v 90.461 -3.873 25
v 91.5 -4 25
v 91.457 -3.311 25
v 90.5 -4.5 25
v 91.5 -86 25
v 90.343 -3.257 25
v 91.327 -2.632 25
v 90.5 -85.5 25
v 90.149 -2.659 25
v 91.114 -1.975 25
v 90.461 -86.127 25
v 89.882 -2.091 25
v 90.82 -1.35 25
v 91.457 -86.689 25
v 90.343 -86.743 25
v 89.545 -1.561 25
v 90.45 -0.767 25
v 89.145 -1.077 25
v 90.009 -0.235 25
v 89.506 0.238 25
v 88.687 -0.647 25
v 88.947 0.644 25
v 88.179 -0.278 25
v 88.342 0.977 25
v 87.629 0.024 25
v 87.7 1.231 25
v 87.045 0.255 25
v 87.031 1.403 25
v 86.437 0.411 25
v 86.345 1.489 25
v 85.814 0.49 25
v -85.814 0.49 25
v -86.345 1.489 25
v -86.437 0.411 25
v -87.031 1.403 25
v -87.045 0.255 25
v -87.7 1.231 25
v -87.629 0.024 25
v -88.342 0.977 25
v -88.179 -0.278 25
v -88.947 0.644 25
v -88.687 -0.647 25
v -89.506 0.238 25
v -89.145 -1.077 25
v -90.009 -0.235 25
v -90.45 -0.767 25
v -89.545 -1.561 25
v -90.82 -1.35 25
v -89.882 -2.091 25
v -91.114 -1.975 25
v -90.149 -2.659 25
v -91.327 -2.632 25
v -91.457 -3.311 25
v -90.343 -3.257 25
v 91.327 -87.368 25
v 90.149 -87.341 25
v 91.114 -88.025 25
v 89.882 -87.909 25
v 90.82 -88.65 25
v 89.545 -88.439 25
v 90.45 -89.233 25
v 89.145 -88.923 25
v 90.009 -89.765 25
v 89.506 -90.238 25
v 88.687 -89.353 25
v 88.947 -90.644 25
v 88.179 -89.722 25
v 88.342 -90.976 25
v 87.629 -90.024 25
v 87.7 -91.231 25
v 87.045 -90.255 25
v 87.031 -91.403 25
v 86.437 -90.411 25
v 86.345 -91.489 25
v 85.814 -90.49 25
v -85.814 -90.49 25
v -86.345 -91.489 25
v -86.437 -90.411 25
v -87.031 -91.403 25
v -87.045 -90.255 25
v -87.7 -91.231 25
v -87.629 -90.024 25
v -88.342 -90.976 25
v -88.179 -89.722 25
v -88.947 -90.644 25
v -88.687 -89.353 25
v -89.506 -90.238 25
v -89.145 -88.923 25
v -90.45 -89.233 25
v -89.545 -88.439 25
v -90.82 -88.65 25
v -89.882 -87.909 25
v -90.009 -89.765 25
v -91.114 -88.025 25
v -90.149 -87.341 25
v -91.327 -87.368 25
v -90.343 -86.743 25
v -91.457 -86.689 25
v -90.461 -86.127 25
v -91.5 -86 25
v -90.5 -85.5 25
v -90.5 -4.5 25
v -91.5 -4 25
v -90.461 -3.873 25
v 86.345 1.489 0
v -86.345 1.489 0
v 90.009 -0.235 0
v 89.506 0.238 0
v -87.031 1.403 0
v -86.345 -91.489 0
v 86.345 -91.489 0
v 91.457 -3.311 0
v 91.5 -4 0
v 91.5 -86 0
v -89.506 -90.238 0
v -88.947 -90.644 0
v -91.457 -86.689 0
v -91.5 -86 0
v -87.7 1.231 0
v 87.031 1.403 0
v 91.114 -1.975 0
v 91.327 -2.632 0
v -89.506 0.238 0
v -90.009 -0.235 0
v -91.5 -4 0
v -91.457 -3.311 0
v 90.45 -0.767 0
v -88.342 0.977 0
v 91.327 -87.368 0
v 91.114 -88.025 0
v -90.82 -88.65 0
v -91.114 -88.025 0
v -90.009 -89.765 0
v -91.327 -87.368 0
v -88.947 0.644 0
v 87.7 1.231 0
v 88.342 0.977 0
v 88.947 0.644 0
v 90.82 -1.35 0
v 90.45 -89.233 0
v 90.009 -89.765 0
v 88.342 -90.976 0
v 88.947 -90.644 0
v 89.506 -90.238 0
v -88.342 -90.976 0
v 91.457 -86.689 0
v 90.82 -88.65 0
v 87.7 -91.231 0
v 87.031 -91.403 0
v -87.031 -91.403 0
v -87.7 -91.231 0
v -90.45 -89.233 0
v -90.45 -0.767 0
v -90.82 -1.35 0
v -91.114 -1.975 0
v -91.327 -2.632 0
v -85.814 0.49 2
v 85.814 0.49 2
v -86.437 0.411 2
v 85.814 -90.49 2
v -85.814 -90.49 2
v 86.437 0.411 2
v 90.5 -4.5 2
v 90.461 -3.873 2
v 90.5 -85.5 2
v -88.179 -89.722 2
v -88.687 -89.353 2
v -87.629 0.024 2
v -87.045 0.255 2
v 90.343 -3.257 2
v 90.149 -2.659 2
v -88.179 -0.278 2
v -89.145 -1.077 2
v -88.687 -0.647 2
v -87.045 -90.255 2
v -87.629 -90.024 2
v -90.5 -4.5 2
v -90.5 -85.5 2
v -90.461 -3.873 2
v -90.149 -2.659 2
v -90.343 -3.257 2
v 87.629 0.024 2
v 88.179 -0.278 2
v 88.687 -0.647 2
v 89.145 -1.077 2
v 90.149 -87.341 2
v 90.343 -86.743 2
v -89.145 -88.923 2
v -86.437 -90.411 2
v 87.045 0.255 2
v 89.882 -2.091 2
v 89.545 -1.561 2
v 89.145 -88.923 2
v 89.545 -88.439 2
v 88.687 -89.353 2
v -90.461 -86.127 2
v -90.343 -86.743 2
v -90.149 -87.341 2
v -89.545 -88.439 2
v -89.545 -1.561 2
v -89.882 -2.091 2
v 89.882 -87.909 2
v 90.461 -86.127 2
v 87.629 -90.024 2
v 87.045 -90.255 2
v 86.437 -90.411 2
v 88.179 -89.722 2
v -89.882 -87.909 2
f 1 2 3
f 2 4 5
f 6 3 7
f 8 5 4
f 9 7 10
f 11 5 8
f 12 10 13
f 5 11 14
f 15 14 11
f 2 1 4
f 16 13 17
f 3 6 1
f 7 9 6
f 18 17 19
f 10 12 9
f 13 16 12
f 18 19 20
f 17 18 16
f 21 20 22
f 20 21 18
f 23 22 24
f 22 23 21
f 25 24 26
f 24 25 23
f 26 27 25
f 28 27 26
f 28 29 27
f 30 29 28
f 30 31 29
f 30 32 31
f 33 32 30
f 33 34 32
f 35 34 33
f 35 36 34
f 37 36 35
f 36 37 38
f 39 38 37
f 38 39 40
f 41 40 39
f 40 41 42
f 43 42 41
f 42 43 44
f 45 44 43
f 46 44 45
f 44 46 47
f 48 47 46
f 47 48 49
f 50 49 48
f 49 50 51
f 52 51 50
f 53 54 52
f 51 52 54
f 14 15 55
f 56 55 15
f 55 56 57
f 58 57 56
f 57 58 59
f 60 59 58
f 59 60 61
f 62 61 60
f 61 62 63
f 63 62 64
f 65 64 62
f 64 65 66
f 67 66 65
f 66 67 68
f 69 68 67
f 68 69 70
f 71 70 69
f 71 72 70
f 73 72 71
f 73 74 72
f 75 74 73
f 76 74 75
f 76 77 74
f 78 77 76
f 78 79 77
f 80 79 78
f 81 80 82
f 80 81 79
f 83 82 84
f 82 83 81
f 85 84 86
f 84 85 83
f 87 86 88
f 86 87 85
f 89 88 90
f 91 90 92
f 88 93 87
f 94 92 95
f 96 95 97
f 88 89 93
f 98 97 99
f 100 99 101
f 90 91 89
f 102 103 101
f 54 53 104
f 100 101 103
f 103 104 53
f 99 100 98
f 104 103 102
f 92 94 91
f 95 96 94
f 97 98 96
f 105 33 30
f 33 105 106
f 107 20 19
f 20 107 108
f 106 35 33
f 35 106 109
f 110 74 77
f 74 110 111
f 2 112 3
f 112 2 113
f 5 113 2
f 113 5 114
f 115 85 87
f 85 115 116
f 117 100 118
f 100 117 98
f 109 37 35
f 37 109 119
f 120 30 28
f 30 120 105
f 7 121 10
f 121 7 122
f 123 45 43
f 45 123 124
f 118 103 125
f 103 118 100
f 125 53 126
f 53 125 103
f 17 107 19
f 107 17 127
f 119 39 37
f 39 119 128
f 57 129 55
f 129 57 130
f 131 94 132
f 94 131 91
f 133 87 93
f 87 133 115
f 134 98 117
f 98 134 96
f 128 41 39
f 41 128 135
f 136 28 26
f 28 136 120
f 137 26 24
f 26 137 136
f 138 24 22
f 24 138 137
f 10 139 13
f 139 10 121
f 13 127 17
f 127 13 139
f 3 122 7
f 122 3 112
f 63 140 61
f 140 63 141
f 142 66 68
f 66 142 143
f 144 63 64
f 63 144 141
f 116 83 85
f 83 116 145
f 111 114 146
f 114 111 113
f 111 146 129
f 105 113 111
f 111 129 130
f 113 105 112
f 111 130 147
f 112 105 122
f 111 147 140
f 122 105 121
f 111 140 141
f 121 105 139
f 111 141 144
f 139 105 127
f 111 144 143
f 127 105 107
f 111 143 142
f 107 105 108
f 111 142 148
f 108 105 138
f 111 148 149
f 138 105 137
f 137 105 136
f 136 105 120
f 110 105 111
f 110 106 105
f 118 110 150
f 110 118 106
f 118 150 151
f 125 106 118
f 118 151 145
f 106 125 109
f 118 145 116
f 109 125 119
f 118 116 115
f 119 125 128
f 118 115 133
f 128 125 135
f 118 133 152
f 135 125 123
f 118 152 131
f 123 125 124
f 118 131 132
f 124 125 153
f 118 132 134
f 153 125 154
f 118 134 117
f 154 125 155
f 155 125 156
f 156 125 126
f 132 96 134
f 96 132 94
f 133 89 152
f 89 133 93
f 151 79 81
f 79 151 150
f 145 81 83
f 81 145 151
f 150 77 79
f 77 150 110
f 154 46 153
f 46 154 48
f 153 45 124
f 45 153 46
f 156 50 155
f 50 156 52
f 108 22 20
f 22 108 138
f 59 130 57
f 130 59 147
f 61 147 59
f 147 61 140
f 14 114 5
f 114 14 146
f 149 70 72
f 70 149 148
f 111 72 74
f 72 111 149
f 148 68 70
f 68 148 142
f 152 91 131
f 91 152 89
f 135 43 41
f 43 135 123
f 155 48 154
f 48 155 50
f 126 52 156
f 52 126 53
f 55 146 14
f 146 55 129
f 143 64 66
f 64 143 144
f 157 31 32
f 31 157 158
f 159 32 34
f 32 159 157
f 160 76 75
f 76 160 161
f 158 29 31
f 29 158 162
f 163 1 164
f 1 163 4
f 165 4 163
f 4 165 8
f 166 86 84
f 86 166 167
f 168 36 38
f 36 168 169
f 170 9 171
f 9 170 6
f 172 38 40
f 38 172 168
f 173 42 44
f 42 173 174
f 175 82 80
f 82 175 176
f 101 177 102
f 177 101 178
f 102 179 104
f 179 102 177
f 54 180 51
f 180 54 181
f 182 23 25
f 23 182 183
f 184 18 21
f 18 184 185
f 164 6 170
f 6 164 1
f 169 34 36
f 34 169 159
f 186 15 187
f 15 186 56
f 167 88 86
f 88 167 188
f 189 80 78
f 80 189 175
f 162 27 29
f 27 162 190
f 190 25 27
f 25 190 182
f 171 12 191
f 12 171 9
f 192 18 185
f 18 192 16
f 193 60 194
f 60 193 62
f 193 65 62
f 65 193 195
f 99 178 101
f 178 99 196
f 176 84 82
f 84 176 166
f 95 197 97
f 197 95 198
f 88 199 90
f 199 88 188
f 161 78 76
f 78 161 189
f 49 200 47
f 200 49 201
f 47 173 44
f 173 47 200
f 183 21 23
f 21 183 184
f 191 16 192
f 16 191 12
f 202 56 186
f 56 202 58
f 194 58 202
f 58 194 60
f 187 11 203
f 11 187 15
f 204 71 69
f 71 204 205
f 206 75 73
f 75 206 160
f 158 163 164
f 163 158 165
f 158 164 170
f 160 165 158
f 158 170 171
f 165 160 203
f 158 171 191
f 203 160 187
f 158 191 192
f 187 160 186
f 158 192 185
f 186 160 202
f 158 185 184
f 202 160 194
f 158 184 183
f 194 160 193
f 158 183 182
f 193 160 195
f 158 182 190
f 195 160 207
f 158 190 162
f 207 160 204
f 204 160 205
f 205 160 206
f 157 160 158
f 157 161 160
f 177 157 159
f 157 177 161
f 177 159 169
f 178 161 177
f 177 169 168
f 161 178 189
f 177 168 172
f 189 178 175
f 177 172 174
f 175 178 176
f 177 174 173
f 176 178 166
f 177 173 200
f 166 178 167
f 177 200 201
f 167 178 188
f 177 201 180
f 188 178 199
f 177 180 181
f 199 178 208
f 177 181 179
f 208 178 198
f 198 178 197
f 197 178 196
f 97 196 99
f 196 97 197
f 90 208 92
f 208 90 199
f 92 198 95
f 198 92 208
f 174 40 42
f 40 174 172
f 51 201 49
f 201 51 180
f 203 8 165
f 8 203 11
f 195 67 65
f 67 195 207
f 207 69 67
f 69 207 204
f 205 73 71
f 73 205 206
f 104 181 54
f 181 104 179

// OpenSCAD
$fn = 50;


difference() {
	union() {
		translate(v = [0, -45.0000000000, 0]) {
			hull() {
				translate(v = [-86.0000000000, 41.0000000000, 0]) {
					cylinder(h = 25, r = 5.5000000000);
				}
				translate(v = [86.0000000000, 41.0000000000, 0]) {
					cylinder(h = 25, r = 5.5000000000);
				}
				translate(v = [-86.0000000000, -41.0000000000, 0]) {
					cylinder(h = 25, r = 5.5000000000);
				}
				translate(v = [86.0000000000, -41.0000000000, 0]) {
					cylinder(h = 25, r = 5.5000000000);
				}
			}
		}
	}
	union() {
		translate(v = [0, -45.0000000000, 2]) {
			hull() {
				translate(v = [-85.5000000000, 40.5000000000, 0]) {
					cylinder(h = 50, r = 5);
				}
				translate(v = [85.5000000000, 40.5000000000, 0]) {
					cylinder(h = 50, r = 5);
				}
				translate(v = [-85.5000000000, -40.5000000000, 0]) {
					cylinder(h = 50, r = 5);
				}
				translate(v = [85.5000000000, -40.5000000000, 0]) {
					cylinder(h = 50, r = 5);
				}
			}
		}
	}
}
